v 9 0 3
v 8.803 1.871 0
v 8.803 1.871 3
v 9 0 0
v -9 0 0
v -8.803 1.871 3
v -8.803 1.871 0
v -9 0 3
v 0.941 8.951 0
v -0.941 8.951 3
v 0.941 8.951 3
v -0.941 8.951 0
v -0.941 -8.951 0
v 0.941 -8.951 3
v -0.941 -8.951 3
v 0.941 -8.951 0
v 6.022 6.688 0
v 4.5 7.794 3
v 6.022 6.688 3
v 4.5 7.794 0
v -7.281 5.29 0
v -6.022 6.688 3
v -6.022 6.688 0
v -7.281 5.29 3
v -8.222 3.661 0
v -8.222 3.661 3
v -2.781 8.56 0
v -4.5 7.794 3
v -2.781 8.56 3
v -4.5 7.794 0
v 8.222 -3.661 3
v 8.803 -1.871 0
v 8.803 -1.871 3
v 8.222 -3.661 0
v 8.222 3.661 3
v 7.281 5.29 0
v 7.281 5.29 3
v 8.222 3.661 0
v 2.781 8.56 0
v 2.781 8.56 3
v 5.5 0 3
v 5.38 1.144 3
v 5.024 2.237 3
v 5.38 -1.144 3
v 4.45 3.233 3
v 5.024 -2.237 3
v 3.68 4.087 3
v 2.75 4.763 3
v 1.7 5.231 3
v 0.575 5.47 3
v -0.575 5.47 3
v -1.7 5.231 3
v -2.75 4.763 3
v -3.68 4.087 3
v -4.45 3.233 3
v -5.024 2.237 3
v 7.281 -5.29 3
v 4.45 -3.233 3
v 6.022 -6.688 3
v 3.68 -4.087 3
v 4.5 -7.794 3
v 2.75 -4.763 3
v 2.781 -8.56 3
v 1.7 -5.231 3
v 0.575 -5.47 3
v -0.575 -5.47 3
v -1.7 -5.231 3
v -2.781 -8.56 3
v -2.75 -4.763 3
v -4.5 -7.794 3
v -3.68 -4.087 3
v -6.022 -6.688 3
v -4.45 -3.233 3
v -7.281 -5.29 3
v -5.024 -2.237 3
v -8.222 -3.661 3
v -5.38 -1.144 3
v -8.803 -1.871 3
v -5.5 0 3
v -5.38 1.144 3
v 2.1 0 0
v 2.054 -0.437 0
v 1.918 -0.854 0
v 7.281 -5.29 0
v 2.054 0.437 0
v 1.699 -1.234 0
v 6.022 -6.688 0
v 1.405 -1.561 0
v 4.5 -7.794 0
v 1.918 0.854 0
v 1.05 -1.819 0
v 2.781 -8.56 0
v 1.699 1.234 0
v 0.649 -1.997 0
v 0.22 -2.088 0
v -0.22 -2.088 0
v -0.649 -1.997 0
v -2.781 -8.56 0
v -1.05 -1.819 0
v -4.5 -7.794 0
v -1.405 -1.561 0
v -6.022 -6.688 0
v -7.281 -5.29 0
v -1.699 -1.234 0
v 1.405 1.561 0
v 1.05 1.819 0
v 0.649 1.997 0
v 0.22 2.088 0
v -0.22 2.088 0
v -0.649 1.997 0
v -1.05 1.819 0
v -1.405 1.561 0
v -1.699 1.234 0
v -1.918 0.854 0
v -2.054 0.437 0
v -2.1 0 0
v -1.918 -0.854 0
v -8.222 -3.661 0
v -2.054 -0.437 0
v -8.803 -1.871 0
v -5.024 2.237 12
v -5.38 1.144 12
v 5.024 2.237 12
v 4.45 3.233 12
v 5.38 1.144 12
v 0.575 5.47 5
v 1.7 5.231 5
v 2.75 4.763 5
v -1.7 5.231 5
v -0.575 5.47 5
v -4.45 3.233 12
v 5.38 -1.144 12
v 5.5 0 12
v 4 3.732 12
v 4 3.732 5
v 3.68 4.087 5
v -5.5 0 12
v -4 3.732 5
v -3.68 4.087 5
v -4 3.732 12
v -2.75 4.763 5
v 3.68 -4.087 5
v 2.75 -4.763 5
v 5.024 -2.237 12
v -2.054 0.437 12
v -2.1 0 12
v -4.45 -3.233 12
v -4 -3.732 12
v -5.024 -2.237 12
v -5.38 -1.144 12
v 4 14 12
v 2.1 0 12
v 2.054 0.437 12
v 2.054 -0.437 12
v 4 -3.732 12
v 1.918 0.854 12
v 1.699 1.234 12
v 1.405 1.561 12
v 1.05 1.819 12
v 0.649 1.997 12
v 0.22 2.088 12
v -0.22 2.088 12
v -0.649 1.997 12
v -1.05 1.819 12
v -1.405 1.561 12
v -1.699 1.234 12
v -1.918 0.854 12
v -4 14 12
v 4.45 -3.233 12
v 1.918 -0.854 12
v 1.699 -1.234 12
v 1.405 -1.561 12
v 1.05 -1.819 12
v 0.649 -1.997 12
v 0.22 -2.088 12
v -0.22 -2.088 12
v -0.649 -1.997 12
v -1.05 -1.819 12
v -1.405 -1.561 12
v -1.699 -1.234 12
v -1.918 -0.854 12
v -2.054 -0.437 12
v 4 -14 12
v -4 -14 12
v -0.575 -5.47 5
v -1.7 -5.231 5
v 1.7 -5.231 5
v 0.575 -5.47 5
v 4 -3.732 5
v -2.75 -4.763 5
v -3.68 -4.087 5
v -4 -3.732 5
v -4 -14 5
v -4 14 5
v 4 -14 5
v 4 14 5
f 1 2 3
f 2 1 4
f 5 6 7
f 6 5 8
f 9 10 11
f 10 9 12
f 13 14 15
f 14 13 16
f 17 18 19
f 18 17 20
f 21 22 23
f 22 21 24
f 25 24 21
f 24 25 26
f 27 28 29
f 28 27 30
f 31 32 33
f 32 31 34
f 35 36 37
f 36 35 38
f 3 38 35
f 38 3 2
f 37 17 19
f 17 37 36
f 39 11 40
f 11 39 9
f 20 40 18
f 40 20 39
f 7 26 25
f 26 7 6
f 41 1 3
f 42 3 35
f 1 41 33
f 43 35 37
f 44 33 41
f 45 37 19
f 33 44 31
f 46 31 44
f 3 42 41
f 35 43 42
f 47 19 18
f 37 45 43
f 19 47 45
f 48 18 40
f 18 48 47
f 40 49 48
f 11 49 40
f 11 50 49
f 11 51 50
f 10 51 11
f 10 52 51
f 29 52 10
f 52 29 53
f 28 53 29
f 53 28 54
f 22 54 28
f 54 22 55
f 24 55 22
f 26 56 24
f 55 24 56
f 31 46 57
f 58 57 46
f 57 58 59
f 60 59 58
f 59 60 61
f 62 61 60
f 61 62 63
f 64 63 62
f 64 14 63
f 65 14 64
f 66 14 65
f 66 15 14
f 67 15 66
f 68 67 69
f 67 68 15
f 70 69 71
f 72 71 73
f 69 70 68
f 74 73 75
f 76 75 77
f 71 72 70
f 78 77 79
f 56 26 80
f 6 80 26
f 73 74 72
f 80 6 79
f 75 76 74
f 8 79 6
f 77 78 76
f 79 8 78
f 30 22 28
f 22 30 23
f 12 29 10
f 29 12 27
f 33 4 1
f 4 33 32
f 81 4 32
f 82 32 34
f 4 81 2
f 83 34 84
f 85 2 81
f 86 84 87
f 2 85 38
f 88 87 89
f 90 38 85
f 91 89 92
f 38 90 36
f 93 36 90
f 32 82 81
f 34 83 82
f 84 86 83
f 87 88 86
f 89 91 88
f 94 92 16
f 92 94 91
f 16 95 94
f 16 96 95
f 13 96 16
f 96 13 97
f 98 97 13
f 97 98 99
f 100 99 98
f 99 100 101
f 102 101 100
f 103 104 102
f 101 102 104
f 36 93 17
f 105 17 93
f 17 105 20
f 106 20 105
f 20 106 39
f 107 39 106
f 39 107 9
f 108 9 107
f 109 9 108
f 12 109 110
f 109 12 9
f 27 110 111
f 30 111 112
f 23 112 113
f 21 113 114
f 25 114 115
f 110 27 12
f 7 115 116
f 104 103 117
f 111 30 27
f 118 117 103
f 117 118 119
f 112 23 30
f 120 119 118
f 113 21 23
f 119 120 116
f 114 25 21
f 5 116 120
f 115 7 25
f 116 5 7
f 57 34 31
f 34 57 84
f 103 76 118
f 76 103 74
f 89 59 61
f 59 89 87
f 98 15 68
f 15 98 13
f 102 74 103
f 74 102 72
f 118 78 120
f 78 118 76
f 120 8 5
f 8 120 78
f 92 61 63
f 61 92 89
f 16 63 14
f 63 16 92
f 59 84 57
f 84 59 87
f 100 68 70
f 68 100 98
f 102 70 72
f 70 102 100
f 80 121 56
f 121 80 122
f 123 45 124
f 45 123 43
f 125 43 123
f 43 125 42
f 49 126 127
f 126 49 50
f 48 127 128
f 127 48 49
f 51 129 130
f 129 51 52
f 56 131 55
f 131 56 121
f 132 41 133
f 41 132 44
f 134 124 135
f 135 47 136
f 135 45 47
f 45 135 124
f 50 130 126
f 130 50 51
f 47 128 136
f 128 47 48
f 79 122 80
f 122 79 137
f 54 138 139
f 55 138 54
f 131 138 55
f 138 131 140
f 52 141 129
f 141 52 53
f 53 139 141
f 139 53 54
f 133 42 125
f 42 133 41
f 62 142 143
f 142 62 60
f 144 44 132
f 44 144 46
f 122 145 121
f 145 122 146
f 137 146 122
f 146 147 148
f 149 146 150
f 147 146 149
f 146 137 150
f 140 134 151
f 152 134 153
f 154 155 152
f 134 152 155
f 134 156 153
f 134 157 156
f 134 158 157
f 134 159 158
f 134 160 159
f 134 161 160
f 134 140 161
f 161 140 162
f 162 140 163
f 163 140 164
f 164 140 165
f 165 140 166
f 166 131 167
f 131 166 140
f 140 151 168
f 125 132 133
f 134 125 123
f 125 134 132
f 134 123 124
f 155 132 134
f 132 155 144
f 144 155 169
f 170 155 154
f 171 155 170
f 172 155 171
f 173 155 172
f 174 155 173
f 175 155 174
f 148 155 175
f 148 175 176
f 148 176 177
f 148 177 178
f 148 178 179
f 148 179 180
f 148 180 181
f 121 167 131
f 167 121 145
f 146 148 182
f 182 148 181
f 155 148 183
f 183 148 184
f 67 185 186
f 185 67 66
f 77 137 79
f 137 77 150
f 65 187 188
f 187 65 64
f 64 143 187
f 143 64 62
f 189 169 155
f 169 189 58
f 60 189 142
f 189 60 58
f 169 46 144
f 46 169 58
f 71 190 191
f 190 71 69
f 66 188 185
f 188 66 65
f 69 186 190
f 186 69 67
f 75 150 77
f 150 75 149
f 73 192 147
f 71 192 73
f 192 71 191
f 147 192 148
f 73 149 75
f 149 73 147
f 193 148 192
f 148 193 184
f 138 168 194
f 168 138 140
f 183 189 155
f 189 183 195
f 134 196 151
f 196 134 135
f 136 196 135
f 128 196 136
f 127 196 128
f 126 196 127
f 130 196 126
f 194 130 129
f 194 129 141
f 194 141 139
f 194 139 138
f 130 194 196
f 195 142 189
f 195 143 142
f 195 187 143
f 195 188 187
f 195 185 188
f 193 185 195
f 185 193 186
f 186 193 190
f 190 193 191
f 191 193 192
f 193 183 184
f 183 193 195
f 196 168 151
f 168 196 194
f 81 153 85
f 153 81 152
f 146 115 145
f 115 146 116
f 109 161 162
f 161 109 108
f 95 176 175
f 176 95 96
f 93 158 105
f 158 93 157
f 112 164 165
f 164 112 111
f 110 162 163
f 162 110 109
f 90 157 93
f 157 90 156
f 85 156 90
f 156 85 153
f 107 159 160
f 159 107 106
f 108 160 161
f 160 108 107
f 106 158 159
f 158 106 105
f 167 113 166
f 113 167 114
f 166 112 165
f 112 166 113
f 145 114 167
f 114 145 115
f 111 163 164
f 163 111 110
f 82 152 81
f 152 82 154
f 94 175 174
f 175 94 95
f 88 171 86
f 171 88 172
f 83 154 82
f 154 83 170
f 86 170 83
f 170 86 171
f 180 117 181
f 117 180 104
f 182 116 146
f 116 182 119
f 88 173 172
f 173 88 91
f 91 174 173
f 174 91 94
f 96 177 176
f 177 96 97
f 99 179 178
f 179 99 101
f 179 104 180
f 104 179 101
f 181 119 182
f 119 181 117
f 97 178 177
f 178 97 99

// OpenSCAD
// retainer.scad
// headlight adjustment screw retainer for vw passat b2

$fn=30;

difference() {
    union() {
        // foot
        cylinder(3,9,9);
        // body
        translate([0,0,3])
            cylinder(2+7,d=11,d=11);
        // arms
        translate([0,0,3+2+(7/2)])
            cube([8,28,7],center=true);
    }
    // hole
    translate([0,0,-1]) 
        cylinder(20,d=4.2,d=4.2);
}
